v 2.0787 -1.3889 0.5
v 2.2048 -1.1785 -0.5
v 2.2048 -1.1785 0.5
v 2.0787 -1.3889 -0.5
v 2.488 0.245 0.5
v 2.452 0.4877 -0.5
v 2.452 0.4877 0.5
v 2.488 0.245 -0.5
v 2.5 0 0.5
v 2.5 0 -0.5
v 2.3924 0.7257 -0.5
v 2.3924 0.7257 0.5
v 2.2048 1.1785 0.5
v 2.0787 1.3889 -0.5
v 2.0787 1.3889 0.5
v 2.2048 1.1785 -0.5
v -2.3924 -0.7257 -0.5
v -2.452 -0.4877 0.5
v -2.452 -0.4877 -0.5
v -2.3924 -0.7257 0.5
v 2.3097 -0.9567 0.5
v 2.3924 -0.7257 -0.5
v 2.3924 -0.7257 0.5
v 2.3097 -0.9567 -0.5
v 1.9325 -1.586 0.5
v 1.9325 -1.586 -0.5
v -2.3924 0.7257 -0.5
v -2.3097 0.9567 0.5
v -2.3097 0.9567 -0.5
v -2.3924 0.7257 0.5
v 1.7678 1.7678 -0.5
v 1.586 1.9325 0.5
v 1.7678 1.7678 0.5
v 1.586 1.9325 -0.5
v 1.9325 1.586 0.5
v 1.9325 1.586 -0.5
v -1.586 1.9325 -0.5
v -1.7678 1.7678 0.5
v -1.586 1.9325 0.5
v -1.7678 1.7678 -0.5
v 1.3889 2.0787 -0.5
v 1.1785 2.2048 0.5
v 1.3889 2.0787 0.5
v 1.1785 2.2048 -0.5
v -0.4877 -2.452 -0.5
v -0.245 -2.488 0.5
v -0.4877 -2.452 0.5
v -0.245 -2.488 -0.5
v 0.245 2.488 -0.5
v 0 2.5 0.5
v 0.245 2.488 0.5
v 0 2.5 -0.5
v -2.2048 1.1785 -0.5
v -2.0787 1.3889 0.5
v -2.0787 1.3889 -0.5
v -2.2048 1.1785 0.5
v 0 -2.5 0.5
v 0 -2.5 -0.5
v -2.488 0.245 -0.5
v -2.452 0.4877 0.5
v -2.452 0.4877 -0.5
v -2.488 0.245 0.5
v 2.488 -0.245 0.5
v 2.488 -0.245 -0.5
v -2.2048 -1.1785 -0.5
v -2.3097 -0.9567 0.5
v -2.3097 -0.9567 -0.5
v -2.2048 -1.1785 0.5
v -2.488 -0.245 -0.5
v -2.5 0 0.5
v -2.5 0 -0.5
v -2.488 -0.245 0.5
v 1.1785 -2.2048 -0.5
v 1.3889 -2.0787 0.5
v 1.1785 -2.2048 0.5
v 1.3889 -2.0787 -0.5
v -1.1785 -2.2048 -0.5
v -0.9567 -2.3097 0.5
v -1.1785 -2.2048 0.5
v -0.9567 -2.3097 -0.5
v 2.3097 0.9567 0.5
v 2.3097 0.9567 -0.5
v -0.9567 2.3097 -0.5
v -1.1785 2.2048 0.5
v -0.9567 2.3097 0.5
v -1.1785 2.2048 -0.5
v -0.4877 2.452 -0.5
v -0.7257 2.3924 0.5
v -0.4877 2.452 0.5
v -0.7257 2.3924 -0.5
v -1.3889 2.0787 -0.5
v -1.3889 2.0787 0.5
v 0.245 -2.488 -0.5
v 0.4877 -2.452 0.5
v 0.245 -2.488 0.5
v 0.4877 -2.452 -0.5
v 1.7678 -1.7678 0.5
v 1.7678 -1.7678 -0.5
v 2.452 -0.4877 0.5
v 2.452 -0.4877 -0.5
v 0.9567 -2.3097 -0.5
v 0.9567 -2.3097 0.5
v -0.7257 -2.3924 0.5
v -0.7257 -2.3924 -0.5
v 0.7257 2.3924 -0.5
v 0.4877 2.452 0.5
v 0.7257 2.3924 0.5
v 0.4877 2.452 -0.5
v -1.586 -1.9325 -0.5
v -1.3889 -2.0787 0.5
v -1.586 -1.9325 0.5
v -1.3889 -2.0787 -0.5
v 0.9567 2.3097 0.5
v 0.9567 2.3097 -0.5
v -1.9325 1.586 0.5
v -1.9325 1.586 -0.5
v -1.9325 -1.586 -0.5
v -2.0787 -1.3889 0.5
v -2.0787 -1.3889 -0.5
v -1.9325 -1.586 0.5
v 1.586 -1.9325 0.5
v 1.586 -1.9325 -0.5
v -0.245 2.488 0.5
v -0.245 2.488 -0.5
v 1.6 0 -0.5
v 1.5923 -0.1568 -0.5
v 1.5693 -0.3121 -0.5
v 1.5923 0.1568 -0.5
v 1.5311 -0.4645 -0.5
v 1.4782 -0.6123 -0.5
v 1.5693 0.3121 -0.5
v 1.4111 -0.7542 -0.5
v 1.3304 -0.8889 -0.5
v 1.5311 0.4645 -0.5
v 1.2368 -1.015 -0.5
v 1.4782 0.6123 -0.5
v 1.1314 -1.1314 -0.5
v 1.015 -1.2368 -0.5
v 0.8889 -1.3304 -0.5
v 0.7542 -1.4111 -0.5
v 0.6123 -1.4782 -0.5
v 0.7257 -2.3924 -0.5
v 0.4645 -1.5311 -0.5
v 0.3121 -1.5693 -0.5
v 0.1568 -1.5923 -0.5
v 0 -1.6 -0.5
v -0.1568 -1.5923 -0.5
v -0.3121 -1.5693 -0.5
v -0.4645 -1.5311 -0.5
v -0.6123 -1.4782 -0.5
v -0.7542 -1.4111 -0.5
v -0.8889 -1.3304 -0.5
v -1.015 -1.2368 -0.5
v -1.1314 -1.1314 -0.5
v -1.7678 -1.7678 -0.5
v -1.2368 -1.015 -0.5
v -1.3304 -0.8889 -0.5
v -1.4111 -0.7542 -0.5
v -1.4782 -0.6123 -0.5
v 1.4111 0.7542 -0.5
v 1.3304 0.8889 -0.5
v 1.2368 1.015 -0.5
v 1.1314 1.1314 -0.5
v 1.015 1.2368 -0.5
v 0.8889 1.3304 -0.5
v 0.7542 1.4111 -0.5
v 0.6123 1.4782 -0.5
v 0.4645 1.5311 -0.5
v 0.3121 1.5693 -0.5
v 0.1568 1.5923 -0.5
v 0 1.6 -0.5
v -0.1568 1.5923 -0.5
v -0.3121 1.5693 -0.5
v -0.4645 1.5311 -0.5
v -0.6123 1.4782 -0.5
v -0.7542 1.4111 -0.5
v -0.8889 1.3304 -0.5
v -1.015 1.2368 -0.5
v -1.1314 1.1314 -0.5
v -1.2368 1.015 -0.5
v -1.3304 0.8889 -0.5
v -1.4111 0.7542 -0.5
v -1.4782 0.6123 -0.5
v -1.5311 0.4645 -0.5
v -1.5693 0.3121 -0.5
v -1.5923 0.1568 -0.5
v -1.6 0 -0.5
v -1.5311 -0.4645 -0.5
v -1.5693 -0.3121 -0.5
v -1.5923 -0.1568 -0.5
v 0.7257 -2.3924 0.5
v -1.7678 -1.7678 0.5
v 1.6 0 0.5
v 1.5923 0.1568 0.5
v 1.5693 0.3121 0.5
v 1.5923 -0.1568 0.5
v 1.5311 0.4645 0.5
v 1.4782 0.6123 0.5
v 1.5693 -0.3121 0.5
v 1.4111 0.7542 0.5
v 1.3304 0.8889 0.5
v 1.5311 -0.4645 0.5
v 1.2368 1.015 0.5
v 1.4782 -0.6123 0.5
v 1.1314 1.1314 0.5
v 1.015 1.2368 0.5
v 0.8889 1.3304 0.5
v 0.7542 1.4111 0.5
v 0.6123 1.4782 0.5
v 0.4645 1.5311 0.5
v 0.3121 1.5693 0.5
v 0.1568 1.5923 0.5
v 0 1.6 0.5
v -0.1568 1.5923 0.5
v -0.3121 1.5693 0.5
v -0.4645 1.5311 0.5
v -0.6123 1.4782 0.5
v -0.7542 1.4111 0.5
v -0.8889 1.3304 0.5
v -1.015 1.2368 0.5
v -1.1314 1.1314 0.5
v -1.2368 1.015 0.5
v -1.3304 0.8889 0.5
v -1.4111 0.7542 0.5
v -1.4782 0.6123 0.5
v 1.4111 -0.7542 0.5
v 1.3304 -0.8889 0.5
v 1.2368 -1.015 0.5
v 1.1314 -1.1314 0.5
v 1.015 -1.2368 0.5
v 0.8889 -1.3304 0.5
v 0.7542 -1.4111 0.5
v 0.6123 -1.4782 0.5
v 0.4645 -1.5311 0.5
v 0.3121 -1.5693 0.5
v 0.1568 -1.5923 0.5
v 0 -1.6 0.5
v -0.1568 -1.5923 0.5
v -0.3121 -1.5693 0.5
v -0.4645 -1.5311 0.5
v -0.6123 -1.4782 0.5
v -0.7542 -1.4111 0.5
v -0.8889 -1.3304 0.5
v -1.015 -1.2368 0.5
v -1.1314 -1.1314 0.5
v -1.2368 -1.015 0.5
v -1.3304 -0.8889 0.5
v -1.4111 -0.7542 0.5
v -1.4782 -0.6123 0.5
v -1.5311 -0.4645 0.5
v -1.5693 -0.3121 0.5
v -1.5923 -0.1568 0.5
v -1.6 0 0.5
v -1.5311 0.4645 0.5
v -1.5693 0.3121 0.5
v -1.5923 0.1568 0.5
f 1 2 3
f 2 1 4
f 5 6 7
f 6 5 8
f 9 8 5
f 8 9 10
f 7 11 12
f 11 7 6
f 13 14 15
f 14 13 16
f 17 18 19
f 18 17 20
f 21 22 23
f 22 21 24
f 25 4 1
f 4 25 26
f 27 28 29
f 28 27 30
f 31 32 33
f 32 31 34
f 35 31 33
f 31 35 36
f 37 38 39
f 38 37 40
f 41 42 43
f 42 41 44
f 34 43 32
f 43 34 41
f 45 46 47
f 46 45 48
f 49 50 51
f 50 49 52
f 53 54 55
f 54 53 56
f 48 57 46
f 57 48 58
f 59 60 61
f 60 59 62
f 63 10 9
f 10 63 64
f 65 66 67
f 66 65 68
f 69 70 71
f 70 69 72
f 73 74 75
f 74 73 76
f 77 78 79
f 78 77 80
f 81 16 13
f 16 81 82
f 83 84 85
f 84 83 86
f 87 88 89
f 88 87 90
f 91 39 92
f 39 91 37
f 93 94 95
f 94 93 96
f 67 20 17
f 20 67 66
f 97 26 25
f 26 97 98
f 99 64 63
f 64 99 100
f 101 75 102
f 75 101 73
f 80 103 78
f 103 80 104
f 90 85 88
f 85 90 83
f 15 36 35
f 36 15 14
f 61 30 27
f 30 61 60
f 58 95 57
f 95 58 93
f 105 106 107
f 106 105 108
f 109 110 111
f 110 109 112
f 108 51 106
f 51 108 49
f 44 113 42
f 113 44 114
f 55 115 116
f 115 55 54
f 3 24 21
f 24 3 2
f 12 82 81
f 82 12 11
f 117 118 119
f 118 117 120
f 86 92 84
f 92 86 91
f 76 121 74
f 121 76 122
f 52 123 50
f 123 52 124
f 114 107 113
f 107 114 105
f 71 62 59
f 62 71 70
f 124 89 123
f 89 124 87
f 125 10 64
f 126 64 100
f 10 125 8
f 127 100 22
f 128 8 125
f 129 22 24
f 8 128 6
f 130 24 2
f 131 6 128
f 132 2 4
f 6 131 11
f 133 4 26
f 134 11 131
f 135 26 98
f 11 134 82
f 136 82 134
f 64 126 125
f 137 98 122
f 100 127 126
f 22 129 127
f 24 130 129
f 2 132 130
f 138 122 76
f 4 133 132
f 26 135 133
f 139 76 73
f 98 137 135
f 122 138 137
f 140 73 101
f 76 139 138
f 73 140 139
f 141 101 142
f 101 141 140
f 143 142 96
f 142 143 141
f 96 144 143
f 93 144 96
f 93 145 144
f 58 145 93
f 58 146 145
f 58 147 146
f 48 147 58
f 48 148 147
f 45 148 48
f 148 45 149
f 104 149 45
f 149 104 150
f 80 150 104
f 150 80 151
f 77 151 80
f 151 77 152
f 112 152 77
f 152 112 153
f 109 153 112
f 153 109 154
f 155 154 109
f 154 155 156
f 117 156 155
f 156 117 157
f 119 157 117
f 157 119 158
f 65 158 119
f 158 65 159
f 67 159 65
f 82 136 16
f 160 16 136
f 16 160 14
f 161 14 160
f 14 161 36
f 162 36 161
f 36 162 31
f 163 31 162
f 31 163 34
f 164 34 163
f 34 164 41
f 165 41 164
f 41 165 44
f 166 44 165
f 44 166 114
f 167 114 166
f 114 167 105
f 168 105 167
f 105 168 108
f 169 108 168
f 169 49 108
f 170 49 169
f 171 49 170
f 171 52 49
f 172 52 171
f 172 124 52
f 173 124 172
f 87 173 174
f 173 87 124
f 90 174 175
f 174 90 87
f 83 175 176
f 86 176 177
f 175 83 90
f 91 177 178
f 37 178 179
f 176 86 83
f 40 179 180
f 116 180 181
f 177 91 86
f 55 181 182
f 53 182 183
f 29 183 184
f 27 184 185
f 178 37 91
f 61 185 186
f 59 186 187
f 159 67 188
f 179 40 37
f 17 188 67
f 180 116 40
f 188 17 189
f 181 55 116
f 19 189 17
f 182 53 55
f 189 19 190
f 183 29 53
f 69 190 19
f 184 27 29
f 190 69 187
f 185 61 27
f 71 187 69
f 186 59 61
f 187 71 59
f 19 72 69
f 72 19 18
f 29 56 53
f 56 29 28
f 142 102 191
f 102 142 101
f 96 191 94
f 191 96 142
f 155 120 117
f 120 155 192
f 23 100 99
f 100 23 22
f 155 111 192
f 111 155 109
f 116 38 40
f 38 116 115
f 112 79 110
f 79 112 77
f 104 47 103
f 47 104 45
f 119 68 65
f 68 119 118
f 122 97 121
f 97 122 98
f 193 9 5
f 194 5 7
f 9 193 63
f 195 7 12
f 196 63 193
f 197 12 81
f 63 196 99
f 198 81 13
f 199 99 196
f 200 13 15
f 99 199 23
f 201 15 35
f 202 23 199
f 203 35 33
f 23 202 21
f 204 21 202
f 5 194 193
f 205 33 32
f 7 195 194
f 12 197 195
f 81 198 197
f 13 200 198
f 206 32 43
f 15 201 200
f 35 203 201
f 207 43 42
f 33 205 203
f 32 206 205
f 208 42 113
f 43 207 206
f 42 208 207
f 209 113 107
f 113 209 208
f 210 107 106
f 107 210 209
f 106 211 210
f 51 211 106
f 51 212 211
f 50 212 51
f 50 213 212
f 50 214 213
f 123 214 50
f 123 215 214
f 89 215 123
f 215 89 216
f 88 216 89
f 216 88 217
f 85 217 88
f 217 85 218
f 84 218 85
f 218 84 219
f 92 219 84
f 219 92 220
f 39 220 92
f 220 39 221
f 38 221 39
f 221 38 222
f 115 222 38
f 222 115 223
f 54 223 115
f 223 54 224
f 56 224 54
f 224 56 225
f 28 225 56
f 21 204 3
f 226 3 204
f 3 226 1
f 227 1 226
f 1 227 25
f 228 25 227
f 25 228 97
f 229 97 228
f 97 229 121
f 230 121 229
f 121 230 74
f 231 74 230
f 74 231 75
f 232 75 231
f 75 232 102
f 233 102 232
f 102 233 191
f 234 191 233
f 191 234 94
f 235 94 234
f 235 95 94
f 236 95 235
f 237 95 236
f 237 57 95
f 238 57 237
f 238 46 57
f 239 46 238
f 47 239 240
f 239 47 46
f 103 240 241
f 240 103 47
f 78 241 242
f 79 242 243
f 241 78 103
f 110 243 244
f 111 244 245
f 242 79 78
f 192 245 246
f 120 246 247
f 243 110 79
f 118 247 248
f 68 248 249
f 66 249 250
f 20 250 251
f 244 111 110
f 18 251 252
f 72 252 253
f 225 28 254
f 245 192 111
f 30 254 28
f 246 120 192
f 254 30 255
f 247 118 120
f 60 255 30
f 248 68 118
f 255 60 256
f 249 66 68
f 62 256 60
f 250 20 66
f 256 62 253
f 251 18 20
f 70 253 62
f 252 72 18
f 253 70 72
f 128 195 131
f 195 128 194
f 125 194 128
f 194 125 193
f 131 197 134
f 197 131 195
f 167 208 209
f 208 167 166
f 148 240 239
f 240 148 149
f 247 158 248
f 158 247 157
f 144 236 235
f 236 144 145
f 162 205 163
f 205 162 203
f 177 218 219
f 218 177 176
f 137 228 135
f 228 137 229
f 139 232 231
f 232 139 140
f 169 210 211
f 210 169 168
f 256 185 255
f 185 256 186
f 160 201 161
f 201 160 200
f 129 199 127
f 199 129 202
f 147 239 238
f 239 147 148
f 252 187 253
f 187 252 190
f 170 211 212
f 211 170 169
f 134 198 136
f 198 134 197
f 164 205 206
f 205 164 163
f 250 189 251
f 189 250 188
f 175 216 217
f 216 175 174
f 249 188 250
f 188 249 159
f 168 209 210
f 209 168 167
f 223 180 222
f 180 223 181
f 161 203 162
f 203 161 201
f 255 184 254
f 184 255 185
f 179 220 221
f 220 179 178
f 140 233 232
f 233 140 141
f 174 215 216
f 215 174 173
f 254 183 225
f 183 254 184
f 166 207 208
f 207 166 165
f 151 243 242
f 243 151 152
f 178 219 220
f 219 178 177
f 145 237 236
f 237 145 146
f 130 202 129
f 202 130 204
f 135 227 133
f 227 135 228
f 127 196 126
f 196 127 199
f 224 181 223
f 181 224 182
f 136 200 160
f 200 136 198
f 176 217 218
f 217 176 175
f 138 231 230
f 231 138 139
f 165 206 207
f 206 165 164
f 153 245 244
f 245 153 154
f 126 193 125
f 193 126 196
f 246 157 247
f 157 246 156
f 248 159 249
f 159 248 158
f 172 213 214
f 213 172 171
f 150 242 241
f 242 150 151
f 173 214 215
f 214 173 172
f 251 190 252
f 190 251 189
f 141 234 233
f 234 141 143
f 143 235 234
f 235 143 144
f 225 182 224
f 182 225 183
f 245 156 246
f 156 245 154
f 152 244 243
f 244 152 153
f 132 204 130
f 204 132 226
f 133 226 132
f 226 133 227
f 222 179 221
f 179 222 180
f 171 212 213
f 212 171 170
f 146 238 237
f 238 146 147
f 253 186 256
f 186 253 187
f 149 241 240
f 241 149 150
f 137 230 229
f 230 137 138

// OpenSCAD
$fn = 64;

difference() {
	cylinder(h = 1, d = 5, center = true);
	cylinder(h = 1.01, d = 3.2, center = true);
}
